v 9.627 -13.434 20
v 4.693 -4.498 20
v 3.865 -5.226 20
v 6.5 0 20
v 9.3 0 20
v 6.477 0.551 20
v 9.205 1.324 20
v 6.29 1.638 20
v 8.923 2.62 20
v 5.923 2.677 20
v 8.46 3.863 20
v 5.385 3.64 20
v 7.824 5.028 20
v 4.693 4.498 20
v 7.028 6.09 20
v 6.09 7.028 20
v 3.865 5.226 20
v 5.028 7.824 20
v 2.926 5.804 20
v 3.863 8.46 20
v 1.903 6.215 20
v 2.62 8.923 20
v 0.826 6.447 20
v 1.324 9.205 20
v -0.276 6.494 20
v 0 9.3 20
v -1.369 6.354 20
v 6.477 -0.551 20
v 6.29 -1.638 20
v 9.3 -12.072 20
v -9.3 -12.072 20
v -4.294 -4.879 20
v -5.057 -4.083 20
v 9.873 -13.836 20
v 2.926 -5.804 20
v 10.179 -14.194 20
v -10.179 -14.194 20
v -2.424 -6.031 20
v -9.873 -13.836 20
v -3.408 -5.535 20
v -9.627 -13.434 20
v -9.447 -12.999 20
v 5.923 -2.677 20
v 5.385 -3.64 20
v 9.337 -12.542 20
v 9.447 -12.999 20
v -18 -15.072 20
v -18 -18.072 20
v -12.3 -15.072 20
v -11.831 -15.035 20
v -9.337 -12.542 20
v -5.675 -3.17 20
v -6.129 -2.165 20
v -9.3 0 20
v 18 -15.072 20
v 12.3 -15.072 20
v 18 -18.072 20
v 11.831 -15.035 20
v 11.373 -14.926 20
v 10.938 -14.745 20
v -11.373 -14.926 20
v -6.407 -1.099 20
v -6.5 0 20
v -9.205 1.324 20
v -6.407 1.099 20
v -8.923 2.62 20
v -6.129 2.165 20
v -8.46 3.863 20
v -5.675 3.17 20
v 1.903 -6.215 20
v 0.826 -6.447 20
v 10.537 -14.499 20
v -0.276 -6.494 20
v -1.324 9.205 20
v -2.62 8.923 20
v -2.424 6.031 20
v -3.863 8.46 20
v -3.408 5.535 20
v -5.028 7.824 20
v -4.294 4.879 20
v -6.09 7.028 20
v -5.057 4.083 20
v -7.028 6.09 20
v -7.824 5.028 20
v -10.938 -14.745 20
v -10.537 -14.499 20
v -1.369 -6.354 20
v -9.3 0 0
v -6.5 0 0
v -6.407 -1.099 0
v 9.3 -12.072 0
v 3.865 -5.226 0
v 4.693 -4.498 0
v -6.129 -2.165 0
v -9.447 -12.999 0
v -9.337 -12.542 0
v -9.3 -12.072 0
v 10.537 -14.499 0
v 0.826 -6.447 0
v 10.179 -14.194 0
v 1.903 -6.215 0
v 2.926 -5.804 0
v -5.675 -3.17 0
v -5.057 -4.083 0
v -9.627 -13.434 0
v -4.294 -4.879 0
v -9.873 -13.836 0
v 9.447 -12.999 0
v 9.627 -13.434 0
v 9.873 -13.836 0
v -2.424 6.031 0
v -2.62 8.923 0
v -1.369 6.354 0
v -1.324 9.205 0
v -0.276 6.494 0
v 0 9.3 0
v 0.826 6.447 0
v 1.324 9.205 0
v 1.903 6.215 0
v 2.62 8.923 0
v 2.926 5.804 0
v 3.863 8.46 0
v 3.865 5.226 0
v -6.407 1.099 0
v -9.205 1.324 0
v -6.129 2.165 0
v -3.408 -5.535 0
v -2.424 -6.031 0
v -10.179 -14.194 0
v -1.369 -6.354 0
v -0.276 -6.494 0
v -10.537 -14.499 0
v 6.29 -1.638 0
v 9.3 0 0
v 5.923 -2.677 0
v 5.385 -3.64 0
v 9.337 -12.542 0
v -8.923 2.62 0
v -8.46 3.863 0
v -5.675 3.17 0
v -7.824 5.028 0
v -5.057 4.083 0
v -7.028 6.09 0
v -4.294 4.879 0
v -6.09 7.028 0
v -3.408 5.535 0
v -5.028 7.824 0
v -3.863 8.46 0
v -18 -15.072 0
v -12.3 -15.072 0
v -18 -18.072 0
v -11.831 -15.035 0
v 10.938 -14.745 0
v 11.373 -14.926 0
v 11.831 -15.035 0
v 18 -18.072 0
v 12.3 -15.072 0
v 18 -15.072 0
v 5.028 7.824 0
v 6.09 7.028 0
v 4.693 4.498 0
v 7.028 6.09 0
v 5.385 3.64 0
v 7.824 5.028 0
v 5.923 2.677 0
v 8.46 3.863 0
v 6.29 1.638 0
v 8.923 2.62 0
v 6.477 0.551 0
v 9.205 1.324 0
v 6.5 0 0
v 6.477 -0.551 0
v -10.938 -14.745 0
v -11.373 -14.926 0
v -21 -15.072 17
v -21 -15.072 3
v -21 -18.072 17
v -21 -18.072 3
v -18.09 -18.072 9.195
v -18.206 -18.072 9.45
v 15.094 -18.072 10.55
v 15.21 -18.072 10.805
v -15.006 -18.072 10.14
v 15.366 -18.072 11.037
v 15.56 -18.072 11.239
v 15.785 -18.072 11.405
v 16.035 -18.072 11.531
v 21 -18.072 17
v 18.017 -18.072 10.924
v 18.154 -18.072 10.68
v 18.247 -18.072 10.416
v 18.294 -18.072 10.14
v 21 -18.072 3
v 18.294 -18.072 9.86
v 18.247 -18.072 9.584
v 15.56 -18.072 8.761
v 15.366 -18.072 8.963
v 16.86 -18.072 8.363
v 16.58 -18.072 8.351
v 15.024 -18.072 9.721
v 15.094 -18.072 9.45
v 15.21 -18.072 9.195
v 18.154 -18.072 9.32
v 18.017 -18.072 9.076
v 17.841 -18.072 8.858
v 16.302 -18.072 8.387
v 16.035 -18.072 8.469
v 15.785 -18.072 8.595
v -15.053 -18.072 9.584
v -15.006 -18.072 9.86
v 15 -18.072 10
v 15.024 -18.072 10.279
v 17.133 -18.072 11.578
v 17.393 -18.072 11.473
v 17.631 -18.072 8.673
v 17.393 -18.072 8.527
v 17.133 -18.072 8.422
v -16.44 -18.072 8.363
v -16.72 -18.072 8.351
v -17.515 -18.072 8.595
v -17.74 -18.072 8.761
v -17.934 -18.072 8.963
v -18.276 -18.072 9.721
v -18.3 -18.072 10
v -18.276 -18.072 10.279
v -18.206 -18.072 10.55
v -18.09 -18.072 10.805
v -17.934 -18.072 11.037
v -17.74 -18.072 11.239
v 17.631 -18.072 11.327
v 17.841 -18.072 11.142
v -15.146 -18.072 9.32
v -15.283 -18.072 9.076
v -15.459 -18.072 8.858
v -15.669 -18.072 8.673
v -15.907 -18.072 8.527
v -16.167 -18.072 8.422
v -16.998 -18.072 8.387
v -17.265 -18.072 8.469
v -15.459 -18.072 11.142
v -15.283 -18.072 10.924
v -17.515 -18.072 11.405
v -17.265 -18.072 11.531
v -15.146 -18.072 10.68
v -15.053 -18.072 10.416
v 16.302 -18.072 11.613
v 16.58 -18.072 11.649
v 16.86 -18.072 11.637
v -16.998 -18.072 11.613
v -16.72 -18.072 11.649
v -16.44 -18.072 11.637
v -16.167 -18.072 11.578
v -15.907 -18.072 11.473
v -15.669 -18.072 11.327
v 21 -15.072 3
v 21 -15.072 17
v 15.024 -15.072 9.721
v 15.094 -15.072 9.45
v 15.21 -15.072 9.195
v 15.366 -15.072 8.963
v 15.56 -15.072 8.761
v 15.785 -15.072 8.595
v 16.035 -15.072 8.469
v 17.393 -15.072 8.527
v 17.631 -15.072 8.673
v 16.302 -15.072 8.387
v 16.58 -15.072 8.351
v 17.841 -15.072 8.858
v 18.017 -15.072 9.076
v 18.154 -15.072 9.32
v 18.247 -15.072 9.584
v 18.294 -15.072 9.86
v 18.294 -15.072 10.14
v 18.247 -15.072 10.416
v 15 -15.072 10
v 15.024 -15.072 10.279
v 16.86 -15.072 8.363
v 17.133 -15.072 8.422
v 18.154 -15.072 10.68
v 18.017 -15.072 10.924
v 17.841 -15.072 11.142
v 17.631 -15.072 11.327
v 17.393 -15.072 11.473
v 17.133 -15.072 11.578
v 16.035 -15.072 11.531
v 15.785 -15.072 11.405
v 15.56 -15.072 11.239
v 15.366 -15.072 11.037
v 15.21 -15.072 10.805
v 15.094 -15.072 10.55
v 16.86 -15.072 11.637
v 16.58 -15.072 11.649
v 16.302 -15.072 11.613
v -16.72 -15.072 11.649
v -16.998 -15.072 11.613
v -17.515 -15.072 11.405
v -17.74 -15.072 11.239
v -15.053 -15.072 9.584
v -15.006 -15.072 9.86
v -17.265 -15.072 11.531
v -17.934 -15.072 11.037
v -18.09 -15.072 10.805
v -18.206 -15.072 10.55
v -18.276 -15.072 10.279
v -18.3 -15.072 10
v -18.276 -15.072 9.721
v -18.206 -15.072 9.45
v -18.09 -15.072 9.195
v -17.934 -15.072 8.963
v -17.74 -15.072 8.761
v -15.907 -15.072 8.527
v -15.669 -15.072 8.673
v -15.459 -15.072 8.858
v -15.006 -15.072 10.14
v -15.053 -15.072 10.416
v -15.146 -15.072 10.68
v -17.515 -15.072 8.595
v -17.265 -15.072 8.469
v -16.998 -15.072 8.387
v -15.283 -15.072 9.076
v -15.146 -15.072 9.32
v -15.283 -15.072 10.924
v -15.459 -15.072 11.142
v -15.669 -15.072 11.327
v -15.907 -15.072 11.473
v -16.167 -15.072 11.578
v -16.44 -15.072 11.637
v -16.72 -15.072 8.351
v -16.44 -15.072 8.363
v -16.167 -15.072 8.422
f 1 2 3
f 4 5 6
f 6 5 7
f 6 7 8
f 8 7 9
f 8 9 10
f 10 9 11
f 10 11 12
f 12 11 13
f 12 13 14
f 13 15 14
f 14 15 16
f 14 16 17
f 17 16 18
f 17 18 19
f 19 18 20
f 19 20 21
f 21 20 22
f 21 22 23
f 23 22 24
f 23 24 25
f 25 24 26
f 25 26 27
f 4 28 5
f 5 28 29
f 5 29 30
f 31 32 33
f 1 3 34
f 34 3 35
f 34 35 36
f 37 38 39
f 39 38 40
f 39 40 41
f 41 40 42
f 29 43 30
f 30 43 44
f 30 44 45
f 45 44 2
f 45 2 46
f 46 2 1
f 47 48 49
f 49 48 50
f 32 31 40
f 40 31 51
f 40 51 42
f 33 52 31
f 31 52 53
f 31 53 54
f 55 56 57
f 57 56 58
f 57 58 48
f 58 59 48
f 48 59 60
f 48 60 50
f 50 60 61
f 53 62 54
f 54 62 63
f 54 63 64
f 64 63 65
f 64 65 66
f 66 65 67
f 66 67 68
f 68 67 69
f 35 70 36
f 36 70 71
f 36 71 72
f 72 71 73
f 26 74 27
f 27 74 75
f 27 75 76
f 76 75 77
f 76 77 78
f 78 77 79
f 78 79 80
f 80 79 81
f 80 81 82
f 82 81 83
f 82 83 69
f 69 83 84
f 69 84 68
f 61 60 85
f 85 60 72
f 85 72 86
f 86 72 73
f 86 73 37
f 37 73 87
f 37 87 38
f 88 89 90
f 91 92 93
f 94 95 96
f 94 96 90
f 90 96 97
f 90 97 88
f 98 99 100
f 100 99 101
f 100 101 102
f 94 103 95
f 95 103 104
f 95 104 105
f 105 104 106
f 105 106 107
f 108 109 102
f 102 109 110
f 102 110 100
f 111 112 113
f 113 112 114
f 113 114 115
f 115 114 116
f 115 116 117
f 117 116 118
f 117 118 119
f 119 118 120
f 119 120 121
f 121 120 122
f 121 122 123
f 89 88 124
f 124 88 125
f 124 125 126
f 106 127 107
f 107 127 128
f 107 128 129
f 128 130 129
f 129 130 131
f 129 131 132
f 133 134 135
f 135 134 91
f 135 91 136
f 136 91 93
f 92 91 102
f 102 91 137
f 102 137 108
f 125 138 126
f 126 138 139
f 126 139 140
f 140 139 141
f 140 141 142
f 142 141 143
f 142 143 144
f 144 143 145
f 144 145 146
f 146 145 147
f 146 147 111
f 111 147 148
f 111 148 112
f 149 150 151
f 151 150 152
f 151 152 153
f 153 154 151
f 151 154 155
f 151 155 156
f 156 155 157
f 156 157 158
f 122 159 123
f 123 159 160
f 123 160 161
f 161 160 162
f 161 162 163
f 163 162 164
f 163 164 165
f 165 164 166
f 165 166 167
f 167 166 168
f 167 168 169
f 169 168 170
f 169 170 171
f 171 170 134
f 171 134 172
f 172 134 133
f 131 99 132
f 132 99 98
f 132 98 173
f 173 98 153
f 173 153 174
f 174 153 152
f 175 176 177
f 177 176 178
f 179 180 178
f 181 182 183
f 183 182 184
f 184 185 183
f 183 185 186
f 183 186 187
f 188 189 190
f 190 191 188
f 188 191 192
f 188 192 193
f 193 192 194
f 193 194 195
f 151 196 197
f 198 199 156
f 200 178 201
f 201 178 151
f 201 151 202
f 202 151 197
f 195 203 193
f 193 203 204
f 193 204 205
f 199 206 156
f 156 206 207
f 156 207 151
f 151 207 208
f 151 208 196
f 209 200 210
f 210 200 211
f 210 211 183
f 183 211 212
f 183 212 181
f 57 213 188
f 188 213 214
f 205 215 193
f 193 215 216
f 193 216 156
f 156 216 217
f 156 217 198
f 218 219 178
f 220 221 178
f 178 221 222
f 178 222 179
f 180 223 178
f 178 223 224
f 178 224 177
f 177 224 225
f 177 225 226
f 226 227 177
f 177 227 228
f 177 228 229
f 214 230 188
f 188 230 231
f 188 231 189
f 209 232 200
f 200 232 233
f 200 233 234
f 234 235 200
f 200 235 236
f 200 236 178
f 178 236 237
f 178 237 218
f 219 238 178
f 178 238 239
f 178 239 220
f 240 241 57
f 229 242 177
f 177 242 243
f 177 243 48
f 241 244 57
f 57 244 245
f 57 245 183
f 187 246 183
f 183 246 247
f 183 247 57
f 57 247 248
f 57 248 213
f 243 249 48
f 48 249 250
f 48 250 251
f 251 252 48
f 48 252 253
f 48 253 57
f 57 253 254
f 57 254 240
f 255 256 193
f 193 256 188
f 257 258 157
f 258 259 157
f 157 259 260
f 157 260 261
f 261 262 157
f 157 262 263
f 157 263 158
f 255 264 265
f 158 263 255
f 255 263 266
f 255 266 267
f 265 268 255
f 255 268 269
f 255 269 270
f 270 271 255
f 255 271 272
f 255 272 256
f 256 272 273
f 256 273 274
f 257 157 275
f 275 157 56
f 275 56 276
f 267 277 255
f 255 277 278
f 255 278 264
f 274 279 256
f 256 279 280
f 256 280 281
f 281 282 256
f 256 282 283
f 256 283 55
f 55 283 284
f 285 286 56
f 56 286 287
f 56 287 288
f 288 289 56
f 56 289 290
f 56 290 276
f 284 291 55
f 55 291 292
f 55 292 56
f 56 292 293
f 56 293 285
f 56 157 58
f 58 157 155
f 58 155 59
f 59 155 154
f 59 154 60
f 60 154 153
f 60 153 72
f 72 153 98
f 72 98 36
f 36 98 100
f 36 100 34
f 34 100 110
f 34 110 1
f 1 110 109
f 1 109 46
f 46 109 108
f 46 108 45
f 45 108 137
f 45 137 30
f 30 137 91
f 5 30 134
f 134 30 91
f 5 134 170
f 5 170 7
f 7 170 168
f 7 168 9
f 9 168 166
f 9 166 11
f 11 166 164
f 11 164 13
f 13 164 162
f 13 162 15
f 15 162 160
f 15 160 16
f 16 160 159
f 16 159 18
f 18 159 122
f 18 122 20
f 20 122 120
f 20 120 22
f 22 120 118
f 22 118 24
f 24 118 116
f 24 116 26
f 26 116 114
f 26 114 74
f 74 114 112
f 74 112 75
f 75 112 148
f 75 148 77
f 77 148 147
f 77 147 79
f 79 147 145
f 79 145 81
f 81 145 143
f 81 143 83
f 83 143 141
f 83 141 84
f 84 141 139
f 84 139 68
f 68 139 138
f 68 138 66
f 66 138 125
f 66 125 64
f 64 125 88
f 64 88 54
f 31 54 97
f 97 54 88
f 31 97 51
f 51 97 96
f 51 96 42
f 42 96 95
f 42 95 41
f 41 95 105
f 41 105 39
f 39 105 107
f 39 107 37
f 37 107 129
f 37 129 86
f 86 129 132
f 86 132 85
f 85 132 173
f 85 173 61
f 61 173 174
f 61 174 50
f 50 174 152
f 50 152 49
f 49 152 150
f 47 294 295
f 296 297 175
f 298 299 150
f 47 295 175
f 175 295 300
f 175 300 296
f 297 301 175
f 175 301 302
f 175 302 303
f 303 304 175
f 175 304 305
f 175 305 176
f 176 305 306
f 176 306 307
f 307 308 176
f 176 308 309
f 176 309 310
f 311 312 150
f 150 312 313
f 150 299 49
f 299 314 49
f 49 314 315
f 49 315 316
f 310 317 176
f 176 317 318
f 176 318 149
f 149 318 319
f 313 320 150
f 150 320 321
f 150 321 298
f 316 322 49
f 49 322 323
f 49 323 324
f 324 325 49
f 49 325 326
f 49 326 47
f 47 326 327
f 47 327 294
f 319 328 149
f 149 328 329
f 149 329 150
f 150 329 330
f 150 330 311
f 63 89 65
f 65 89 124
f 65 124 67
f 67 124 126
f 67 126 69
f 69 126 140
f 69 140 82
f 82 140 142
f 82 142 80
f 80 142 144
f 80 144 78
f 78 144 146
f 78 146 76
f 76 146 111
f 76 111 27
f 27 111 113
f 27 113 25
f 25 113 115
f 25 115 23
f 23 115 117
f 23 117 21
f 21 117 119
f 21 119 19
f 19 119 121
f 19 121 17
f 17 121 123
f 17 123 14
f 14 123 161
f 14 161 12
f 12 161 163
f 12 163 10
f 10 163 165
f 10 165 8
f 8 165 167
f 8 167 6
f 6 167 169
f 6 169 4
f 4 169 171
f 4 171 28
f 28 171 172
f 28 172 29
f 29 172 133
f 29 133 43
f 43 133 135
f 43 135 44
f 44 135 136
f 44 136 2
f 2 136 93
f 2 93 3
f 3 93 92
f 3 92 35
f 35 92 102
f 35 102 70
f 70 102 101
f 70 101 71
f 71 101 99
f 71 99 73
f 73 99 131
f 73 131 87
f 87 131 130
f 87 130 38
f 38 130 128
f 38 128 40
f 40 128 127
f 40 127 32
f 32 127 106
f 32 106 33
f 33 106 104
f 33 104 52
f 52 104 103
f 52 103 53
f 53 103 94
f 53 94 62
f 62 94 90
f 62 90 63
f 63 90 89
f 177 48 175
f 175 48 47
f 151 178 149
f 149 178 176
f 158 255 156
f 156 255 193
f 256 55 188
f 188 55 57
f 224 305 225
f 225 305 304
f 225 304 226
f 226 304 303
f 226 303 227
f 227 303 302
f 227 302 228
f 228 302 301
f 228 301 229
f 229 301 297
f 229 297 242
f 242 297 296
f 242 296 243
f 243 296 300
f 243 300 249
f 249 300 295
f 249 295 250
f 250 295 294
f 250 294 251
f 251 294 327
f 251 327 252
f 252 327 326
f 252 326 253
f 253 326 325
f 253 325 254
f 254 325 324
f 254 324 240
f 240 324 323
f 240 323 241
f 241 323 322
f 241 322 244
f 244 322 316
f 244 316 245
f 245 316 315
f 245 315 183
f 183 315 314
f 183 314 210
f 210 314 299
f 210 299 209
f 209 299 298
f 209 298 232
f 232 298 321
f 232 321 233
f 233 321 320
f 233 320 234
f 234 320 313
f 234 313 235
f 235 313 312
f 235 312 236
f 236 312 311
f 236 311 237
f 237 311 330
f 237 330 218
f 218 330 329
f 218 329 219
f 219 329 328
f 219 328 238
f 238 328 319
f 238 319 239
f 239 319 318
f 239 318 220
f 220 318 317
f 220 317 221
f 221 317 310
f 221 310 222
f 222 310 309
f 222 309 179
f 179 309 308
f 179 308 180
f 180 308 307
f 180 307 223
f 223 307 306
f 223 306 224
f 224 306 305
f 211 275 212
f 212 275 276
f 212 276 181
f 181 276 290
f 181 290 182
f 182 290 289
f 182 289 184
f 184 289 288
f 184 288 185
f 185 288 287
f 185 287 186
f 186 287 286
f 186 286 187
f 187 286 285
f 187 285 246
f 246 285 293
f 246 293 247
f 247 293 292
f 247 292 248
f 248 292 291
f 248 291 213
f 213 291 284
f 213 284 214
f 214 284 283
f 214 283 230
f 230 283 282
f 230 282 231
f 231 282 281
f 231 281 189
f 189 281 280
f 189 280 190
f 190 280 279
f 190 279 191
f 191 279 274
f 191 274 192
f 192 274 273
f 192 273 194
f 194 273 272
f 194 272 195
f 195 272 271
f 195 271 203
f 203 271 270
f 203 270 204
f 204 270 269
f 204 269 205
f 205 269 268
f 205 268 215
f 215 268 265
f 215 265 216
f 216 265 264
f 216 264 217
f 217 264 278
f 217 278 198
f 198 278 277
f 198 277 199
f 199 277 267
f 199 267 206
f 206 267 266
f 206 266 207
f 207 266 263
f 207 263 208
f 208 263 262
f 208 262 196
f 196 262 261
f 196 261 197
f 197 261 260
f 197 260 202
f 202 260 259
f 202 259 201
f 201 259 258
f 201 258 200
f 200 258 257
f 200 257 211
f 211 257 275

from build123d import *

# Parameters (mm, degrees)
SKETCH1_R           = 6.5
BOSS_EXTRUDE1_DEPTH = 20
CHAMFER1_SIZE       = 3
SKETCH2_R           = 1.65
CUT_EXTRUDE1_DEPTH  = 20


with BuildPart() as part:
    # Sketch1 → Boss-Extrude1 (new body)
    with BuildSketch(Plane.XY):
        with BuildLine():
            Line((-21, -18.072367328), (21, -18.072367328))
            Line((21, -18.072367328), (21, -15.072367328))
            Line((21, -15.072367328), (12.3, -15.072367328))
            ThreePointArc((12.3, -15.072367328), (10.178679656, -14.193687672), (9.3, -12.072367328))
            Line((9.3, -12.072367328), (9.3, 0))
            ThreePointArc((9.3, 0), (0, 9.3), (-9.3, 0))
            Line((-9.3, 0), (-9.3, -12.072367328))
            ThreePointArc((-9.3, -12.072367328), (-10.178679656, -14.193687672), (-12.3, -15.072367328))
            Line((-12.3, -15.072367328), (-21, -15.072367328))
            Line((-21, -15.072367328), (-21, -18.072367328))
        make_face()
        Circle(SKETCH1_R, mode=Mode.SUBTRACT)
    extrude(amount=BOSS_EXTRUDE1_DEPTH)

    # Chamfer1
    chamfer1_edges = [part.edges().sort_by_distance(p)[0] for p in [
        (21, -16.572367328, 20),
        (21, -16.572367328, 0),
        (-21, -16.572367328, 0),
        (-21, -16.572367328, 20),
    ]]
    chamfer(chamfer1_edges, length=CHAMFER1_SIZE)

    # Sketch2 → Cut-Extrude1 (cut)
    with BuildSketch(Plane(origin=(0, -15.072367328, 0), x_dir=(1, 0, 0), z_dir=(0, 1, 0))):
        with Locations(Location((16.65, -10, 0), (0, 0, 180))):
            Circle(SKETCH2_R)
        with Locations(Location((-16.65, -10, 0), (0, 0, 180))):
            Circle(SKETCH2_R)
    extrude(amount=-CUT_EXTRUDE1_DEPTH, mode=Mode.SUBTRACT)


solid = part.part
